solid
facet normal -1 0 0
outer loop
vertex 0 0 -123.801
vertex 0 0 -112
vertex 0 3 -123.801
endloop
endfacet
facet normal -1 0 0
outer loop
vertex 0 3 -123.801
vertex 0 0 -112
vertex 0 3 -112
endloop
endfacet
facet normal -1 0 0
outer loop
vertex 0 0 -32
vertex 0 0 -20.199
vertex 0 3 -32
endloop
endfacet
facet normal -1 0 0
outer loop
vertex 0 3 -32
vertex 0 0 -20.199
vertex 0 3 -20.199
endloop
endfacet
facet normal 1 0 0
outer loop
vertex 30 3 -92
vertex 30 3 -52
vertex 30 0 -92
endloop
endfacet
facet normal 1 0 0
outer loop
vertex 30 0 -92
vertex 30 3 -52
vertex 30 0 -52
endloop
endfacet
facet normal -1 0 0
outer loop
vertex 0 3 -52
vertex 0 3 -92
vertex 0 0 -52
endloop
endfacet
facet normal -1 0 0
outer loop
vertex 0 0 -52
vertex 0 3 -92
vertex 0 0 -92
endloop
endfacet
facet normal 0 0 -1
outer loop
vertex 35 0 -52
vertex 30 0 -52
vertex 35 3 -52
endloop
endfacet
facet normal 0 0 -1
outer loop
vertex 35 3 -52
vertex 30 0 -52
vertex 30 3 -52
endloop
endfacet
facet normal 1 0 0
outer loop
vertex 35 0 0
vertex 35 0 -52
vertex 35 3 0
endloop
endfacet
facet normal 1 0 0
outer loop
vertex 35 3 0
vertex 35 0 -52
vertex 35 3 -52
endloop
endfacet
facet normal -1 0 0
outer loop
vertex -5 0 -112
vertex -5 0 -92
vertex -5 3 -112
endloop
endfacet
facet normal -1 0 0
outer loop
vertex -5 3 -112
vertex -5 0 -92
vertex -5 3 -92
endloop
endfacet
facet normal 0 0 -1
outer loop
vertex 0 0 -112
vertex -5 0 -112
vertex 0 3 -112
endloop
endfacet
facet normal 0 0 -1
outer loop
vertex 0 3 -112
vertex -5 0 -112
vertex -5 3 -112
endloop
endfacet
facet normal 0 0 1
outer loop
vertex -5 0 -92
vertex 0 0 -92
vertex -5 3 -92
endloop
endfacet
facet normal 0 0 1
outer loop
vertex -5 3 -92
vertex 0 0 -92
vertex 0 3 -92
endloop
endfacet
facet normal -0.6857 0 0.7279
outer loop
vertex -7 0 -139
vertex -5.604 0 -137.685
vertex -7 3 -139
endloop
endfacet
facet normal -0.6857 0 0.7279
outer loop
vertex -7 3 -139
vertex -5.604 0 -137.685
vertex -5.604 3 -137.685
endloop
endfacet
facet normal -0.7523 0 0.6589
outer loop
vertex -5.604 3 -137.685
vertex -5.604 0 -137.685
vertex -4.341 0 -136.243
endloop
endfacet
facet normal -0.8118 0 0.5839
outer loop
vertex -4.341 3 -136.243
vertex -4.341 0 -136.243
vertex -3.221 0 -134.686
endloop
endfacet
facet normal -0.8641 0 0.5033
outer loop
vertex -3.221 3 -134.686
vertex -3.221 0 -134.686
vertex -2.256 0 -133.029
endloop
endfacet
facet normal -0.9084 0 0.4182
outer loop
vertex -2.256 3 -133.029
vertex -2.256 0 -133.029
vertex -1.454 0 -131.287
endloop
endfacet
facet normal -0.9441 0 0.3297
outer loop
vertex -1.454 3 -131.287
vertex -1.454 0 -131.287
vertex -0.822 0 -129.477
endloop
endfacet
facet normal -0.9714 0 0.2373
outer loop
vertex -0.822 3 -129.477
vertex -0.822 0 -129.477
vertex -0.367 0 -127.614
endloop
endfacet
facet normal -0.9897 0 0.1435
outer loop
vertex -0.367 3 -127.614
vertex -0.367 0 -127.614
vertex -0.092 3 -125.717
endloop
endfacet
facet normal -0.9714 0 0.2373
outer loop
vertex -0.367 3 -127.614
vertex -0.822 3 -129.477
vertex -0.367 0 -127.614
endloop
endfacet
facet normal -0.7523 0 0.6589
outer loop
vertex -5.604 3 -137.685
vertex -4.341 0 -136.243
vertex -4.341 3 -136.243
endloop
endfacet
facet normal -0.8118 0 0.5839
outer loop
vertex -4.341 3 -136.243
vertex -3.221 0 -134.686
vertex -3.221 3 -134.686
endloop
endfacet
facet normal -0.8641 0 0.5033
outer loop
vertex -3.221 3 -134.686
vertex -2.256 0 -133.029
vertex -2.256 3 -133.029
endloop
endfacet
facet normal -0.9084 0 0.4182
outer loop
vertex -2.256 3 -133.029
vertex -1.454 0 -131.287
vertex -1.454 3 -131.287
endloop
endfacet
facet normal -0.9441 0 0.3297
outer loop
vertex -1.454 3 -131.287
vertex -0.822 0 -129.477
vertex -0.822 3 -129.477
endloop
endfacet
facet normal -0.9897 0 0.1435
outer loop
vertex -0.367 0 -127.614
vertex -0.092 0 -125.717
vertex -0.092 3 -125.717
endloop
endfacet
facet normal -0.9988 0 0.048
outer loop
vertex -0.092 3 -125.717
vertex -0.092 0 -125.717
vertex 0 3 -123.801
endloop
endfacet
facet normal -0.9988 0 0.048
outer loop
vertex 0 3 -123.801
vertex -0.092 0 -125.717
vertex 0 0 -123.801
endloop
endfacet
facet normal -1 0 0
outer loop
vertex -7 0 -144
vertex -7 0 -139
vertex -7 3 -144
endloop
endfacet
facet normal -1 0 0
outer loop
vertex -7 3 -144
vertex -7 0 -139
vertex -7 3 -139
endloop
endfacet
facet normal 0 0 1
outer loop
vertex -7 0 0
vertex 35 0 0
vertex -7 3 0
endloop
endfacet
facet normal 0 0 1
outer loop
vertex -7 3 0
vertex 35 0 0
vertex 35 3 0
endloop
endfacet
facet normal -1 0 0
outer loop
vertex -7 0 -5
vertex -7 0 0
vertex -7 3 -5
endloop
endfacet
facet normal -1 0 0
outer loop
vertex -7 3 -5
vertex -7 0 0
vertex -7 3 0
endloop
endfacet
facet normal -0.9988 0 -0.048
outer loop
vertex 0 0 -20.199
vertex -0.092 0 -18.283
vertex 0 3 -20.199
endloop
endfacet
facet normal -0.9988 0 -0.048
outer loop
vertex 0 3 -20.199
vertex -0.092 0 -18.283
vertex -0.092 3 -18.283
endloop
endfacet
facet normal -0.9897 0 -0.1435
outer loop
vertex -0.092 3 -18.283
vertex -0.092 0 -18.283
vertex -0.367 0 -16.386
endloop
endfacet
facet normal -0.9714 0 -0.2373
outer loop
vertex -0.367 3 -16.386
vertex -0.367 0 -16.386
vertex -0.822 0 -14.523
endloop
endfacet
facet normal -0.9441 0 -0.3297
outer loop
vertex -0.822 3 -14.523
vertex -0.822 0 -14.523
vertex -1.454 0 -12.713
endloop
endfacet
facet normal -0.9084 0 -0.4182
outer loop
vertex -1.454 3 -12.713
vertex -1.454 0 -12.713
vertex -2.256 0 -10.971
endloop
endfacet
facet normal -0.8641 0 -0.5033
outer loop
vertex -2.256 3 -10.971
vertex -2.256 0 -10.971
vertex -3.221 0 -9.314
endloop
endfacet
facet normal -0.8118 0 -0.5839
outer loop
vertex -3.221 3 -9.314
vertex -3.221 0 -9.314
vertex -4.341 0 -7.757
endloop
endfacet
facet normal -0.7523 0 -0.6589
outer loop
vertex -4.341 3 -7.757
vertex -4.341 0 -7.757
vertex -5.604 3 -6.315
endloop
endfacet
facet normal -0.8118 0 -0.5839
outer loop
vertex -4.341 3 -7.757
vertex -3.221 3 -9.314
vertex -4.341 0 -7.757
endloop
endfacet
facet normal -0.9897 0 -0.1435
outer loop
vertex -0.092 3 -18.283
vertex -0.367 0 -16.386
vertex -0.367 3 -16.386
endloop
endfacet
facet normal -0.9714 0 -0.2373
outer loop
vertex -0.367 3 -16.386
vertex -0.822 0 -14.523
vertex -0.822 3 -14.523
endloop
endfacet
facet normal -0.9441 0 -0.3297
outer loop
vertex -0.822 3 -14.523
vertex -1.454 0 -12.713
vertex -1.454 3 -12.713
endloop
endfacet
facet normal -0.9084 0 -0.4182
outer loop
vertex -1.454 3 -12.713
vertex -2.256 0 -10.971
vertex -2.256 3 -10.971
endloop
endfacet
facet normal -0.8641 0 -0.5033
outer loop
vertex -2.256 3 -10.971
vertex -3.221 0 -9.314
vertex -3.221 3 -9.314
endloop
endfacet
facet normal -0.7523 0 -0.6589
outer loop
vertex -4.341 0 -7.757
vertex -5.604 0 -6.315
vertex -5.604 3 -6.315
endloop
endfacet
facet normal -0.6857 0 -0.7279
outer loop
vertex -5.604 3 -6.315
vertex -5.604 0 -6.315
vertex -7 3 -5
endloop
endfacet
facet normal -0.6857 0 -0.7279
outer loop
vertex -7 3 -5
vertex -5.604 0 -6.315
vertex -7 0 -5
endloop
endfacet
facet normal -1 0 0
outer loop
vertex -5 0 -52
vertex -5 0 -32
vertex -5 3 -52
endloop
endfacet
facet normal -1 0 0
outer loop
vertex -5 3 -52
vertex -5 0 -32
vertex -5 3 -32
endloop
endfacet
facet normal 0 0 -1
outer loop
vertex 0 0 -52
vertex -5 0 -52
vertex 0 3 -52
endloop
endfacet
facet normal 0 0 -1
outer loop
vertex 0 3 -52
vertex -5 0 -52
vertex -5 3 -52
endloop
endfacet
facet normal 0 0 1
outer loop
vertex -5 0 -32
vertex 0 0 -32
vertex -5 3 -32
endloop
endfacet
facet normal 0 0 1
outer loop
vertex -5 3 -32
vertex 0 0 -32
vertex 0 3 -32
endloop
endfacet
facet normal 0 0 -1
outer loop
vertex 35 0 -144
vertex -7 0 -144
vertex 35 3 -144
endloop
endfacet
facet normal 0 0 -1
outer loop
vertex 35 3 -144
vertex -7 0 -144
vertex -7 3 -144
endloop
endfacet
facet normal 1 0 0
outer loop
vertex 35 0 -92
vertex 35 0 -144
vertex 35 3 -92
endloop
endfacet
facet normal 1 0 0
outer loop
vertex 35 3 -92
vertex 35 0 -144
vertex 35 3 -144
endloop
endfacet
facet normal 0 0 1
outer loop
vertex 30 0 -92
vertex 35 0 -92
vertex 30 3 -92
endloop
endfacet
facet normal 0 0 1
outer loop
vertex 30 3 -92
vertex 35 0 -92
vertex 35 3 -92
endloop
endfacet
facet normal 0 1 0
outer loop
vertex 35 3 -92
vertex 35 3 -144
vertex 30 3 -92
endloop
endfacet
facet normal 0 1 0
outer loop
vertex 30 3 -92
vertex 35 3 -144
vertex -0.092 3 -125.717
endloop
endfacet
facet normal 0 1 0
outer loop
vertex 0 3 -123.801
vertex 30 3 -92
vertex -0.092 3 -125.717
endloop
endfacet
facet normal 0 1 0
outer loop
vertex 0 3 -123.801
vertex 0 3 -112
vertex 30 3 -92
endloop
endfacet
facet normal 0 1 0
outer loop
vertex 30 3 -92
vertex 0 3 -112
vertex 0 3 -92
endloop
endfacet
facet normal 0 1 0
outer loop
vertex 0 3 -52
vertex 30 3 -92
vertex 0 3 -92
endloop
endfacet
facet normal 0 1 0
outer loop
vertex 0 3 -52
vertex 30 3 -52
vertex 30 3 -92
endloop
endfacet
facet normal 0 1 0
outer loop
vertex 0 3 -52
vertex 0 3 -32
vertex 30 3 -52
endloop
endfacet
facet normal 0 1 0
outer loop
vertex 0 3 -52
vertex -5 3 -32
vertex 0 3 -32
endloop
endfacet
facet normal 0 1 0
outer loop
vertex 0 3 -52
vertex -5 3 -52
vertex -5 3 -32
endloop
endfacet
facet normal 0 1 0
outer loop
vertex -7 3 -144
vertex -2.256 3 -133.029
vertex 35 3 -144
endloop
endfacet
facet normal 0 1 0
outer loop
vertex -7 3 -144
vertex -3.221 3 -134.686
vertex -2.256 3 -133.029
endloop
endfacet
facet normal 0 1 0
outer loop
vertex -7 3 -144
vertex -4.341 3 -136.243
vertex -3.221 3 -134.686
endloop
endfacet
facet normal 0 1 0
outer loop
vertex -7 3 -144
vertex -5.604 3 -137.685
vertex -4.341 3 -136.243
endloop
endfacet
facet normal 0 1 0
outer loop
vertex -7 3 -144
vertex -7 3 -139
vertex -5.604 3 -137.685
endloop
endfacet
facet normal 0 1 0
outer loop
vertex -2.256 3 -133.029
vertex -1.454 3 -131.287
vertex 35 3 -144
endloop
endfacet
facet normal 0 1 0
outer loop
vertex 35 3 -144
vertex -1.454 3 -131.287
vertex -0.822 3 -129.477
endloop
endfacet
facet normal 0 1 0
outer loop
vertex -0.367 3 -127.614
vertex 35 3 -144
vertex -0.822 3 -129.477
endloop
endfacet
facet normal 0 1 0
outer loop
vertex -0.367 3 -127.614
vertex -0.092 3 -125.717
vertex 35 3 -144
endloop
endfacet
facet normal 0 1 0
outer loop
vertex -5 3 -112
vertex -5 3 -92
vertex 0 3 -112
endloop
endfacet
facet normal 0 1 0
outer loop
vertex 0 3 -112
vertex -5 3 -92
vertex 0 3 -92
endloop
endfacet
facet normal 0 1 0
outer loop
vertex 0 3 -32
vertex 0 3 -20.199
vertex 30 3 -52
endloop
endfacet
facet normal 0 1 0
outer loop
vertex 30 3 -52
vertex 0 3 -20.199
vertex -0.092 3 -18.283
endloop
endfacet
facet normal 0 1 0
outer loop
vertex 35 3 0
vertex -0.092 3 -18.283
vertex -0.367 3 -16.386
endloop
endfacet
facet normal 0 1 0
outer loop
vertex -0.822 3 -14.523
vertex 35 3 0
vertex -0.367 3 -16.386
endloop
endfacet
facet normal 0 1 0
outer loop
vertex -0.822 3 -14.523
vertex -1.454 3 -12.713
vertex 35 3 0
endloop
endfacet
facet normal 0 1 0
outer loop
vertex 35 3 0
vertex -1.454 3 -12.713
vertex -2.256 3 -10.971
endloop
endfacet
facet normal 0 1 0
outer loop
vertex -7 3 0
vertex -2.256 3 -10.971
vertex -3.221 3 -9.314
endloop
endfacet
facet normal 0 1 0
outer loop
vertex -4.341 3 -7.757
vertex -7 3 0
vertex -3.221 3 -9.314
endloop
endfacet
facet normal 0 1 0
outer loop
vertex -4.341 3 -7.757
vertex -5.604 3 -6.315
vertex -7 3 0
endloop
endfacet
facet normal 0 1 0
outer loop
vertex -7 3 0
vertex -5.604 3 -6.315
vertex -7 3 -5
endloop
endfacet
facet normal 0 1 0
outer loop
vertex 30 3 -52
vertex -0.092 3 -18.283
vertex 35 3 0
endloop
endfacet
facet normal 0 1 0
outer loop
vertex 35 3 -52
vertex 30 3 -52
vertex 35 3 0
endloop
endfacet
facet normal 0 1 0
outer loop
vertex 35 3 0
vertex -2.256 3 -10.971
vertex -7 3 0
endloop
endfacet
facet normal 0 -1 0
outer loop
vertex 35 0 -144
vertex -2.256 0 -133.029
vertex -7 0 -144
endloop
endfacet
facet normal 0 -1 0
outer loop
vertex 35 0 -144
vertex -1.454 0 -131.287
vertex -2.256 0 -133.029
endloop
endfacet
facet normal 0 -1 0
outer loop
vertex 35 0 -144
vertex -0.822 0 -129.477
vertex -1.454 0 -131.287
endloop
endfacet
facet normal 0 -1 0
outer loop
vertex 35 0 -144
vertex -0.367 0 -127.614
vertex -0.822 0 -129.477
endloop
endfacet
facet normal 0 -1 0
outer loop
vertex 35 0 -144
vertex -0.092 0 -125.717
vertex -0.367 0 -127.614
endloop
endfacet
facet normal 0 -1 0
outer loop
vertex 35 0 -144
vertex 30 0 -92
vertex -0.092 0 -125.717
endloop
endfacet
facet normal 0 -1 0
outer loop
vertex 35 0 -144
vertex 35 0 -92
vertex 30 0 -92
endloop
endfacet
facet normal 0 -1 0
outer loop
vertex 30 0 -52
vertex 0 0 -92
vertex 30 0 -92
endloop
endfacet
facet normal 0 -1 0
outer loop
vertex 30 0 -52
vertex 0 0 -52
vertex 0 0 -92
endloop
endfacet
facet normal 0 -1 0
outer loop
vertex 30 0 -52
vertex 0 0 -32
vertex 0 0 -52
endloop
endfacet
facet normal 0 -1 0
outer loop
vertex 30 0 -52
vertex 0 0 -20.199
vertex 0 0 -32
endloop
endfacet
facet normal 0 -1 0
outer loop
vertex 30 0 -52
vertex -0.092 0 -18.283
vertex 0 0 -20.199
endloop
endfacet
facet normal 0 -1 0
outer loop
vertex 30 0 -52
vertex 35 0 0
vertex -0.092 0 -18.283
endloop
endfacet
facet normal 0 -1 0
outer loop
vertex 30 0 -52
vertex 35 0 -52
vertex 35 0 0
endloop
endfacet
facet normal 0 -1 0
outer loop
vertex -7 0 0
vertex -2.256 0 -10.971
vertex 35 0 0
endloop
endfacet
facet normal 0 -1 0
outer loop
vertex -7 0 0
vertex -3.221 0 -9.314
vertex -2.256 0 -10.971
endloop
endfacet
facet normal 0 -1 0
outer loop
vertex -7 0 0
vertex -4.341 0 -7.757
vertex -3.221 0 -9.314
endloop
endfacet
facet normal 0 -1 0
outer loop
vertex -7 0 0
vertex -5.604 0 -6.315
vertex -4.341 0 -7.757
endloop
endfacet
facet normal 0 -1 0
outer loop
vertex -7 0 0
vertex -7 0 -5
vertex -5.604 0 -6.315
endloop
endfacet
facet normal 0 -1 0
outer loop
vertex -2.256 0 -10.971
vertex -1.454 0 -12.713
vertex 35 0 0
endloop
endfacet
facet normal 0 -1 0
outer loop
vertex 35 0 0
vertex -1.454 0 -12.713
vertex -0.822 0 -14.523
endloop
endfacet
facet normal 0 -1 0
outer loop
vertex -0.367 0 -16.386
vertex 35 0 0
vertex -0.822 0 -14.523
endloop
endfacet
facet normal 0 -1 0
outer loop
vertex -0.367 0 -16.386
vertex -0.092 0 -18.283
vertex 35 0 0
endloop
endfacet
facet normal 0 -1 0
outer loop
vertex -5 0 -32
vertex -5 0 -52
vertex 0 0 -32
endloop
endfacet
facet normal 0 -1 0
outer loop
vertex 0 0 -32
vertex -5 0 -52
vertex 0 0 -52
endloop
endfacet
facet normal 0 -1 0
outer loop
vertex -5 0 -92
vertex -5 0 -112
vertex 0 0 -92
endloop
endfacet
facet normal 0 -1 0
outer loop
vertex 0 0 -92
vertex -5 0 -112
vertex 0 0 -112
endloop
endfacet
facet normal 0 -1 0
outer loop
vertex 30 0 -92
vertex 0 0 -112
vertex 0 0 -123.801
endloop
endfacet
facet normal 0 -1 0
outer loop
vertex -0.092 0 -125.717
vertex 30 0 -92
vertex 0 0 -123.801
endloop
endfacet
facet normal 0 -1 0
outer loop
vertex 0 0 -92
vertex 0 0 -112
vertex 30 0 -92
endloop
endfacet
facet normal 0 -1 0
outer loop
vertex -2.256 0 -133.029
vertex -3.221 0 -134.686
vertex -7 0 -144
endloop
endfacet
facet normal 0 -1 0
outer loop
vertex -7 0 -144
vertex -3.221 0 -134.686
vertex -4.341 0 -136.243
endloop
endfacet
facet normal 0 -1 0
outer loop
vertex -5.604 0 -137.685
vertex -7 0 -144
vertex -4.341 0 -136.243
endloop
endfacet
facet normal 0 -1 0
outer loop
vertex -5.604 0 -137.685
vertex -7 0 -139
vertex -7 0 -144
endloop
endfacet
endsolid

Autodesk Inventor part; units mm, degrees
ref_plane "YZ Plane" through (0, 0, 0) normal (1, 0, 0) x (0, 1, 0)
ref_plane "XZ Plane" through (0, 0, 0) normal (0, 1, 0) x (-1, 0, 0)
ref_plane "XY Plane" through (0, 0, 0) normal (0, 0, 1) x (1, 0, 0)
sketch "Sketch2" plane through (0, 0, 0) normal (0, 1, 0) x (-1, 0, 0)
  line L0 (0, 0) -> (-30, 0)
  line L1 (-30, 0) -> (-30, -144)
  line L2 (-30, -144) -> (0, -144)
  line L3 (0, -144) -> (0, 0)
  line L4 (0, 0) -> (7, 0)
  line L5 (7, 0) -> (7, -5)
  arc A0 (7, -5) -> (0, -20.1987) centre (20, -20.1987) ccw
  line L6 (0, -144) -> (7, -144)
  line L7 (7, -144) -> (7, -139)
  arc A1 (0, -123.8013) -> (7, -139) centre (20, -123.8013) ccw
  line L8 (-30, 0) -> (-35, 0)
  line L9 (-35, 0) -> (-35, -52)
  line L10 (-35, -52) -> (-30, -52)
  line L11 (-30, -52) -> (-30, 0)
  line L12 (-30, -144) -> (-35, -144)
  line L13 (-35, -144) -> (-35, -92)
  line L14 (-35, -92) -> (-30, -92)
  line L15 (-30, -92) -> (-30, -144)
  line L16 (5, -32) -> (0, -32)
  line L17 (0, -52) -> (5, -52)
  line L18 (5, -52) -> (5, -32)
  line L19 (5, -92) -> (0, -92)
  line L20 (0, -112) -> (5, -112)
  line L21 (5, -112) -> (5, -92)
  dimension "d0" = 144
  dimension "d1" = 30
  dimension "d2" = 5
  dimension "d3" = 7
  dimension "d4" = 20
  dimension "d5" = 7
  dimension "d6" = 5
  dimension "d9" = 20
  dimension "d10" = 5
  dimension "d11" = 5
  dimension "d12" = 40
  dimension "d13" = 40
  dimension "d14" = 5
  dimension "d15" = 5
  dimension "d16" = 20
  dimension "d17" = 20
extrude "Cuerpo" add sketch "Sketch2" along normal blind 3
equation "\"d0\" = deslizador_largo"
equation "\"d1\" = deslizador_ancho"
equation "\"d2\" = deslizador_interruptor_largo"
equation "\"d3\" = deslizador_interruptor_ancho"
equation "\"d4\" = deslizador_interruptor_angulo"
equation "\"d5\" = d3"
equation "\"d6\" = d2"
equation "\"d9\" = d4"
equation "\"d10\" = deslizador_saliente"
equation "\"d11\" = d10"
equation "\"d12\" = movimiento_deslizador + deslizador_tope_largo"
equation "\"d13\" = d12"
equation "\"d14\" = d10"
equation "\"d15\" = d10"
equation "\"d16\" = deslizador_saliente_largo"
equation "\"d17\" = d16"
equation "\"d18\" = deslizador_alto"
equation "\"margen\" = 0.3"
equation "\"base_alto\" = 3"
equation "\"muros_grosor\" = 3"
equation "\"rail_alto\" = 1.5"
equation "\"rail_grosor\" = 5"
equation "\"hoja_stop_posicion\" = 5"
equation "\"hoja_stop_saliente\" = 5"
equation "\"hoja_stop_largo\" = 5"
equation "\"hoja_alto\" = 3"
equation "\"hoja_stop_biselado\" = 2"
equation "\"hoja_filo_biselado\" = 0.5"
equation "\"hoja_cola_biselado\" = 1"
equation "\"deslizador_soporte_alto\" = 4"
equation "\"deslizador_tope_alto\" = 5"
equation "\"deslizador_soporte_ancho\" = 5"
equation "\"deslizador_tope_largo\" = 10"
equation "\"deslizador_alto\" = 3"
equation "\"tirador_agarre_largo\" = 3"
equation "\"movimiento_deslizador\" = 30"
equation "\"deslizador_largo\" = 144"
equation "\"deslizador_ancho\" = 30"
equation "\"deslizador_saliente\" = 5"
equation "\"deslizador_interruptor_angulo\" = 20"
equation "\"deslizador_interruptor_largo\" = 5"
equation "\"deslizador_interruptor_ancho\" = 7"
equation "\"deslizador_saliente_largo\" = 20"
equation "\"traba_top_alto\" = 3"
equation "\"traba_top_largo\" = 5"
equation "\"traba_alto\" = 4"
equation "\"traba_ancho\" = 3"
equation "\"traba_largo\" = 39"
equation "\"traba_diametro\" = 5"
equation "\"traba_diametro_perforacion\" = 2"
equation "\"base_separacion_agujeros\" = 4"
equation "\"base_agujeros_separacion\" = 3.5"
equation "\"base_agujeros_diametro\" = 2"
properties part number "Deslizador"
